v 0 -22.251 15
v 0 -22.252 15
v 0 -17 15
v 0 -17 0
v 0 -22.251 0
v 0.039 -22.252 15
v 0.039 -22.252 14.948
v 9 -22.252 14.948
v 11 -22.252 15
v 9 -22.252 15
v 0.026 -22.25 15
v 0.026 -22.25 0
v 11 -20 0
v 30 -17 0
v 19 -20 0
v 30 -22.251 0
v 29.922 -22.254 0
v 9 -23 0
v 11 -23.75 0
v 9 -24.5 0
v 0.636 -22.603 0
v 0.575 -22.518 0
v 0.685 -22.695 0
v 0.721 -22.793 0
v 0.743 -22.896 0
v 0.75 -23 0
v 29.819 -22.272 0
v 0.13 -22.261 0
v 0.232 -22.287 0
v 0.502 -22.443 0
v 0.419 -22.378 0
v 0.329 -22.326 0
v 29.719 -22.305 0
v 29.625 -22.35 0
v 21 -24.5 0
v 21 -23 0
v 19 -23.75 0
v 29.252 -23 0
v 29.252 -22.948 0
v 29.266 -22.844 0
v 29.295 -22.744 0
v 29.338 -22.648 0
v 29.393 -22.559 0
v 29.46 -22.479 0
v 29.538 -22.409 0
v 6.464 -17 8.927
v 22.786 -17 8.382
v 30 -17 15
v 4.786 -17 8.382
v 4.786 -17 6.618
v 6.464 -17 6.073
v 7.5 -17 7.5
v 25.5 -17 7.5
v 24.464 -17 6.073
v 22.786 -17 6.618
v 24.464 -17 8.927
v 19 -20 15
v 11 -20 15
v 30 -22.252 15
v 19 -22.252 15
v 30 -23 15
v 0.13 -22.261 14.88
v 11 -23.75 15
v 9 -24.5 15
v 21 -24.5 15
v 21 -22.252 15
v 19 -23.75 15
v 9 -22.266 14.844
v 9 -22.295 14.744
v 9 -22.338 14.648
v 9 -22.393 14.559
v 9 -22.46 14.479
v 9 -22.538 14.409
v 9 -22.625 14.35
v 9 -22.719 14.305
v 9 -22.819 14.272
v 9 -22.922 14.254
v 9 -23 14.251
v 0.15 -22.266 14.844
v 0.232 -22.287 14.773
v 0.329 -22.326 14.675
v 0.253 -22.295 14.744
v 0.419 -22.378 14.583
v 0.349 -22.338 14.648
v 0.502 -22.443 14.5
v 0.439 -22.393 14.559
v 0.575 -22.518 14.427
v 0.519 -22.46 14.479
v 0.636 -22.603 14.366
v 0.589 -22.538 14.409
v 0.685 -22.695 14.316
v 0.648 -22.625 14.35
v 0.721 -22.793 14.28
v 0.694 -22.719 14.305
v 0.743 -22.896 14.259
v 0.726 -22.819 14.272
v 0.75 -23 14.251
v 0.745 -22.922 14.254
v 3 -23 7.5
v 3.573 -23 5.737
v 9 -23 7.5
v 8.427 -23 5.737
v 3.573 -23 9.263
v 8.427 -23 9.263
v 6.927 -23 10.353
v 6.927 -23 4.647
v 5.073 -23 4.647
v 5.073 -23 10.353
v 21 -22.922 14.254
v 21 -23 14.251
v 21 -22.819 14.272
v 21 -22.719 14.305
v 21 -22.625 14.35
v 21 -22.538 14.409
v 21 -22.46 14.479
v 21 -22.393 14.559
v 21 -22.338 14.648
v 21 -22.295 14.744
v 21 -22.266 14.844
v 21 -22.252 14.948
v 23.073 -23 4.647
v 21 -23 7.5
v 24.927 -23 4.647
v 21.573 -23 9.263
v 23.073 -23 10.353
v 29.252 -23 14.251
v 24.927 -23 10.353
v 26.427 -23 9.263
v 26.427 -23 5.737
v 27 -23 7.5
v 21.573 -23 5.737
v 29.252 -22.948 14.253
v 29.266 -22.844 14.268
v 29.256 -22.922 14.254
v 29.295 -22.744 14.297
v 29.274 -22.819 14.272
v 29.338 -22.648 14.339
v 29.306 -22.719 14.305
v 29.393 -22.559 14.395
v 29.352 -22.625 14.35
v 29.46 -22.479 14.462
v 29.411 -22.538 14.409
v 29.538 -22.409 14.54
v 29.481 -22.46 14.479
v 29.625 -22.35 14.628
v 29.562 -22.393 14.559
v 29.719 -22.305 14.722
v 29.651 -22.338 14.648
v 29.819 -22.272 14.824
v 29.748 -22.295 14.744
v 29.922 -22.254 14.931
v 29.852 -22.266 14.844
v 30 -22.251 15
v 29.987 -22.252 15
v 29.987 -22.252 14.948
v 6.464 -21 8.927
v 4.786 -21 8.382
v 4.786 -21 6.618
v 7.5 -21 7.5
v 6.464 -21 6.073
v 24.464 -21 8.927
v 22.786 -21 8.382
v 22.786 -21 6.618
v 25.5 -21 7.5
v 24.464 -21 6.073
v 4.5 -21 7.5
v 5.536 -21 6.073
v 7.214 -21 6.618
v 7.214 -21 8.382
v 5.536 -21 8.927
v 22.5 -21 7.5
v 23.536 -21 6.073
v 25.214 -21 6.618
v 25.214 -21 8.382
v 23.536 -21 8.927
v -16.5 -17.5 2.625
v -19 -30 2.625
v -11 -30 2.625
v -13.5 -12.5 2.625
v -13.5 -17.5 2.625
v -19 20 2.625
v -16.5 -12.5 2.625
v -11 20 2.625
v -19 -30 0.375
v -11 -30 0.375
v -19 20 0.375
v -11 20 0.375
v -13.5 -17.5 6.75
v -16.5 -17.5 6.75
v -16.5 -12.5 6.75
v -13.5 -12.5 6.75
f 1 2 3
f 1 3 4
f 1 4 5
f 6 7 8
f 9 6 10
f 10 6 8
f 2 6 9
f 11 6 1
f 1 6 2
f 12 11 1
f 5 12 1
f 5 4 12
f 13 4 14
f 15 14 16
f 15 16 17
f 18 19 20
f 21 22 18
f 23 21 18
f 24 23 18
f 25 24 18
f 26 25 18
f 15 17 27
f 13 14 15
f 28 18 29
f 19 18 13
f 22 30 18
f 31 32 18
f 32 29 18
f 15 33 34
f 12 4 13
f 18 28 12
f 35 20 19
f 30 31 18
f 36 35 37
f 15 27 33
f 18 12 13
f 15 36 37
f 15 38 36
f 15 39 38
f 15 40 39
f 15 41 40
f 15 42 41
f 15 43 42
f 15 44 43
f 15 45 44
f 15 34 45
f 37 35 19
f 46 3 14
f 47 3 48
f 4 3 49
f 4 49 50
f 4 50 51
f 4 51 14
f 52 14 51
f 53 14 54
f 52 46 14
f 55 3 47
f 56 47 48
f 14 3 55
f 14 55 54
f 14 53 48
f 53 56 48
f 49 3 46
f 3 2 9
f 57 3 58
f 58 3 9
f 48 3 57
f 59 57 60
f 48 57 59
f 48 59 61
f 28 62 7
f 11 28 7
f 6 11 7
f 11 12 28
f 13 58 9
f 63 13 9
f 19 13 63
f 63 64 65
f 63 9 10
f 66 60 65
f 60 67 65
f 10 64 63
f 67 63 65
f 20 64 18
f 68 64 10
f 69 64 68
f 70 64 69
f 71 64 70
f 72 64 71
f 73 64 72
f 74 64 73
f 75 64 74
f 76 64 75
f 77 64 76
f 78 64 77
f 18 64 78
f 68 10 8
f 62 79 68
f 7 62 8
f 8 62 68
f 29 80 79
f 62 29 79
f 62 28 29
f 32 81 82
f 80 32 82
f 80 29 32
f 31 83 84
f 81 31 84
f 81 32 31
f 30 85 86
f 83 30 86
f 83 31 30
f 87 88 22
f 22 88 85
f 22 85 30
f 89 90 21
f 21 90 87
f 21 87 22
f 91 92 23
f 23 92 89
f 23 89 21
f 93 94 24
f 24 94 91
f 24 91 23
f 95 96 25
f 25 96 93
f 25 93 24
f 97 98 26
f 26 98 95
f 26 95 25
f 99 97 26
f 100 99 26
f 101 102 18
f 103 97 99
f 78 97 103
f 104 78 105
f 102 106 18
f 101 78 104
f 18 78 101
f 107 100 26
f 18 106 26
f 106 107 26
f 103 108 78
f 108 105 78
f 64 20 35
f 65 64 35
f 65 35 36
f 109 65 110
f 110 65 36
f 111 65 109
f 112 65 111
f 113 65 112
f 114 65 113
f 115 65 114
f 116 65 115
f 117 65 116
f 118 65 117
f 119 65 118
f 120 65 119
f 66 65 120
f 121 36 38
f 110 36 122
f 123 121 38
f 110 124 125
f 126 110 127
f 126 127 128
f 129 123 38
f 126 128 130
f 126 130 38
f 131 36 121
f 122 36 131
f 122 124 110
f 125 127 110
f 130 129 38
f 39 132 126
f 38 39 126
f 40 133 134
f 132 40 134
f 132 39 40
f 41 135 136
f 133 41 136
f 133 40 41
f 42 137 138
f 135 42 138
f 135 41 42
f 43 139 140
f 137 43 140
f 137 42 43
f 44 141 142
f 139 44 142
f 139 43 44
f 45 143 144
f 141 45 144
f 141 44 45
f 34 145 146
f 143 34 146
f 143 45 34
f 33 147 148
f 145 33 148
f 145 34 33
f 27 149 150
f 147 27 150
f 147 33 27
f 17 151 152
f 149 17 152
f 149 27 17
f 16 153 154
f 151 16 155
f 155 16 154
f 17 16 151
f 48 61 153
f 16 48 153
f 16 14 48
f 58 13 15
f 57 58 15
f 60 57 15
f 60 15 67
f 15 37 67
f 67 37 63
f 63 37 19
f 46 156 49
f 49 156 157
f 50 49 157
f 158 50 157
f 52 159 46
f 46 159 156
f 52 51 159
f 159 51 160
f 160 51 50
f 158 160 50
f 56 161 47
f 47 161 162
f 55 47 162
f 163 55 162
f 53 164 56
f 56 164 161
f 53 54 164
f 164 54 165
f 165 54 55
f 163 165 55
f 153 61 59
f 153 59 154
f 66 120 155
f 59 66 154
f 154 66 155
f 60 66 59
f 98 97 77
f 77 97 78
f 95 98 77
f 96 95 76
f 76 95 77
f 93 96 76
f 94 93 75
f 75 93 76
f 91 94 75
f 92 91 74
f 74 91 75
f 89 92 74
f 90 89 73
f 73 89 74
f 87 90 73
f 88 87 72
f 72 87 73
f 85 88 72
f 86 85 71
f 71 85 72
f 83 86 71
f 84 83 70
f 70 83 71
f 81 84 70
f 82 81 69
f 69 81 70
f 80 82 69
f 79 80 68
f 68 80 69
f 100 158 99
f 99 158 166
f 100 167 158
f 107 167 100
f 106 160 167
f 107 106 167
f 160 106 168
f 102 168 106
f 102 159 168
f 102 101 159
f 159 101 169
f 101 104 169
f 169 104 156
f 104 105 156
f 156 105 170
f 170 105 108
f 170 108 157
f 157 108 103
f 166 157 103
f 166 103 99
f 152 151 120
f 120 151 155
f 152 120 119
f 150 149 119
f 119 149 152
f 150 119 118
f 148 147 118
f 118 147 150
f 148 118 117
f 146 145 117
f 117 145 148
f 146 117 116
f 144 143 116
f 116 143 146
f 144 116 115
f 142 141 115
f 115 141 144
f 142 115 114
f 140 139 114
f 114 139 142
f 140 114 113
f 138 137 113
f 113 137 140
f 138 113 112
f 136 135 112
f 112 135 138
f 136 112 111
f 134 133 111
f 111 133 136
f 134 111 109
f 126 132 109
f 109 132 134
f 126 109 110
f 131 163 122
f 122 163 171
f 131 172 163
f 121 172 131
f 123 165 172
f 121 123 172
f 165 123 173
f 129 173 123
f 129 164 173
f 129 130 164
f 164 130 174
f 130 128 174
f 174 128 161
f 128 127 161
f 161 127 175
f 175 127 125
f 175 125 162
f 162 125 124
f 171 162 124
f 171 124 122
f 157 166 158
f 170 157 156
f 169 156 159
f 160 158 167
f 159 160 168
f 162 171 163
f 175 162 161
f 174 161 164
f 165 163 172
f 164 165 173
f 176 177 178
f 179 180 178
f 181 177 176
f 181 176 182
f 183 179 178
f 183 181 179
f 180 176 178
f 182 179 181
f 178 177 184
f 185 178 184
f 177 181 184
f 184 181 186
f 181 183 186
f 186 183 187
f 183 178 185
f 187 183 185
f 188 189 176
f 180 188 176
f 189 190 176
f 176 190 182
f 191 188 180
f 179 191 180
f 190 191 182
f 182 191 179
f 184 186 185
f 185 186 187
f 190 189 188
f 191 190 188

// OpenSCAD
/*
 *   door_latch.scad
 *   Creates a simple door lock for closing a door.
 *   Copyright (C) 2014  Mogue Carpenter
 *
 *    This program is free software: you can redistribute it and/or modify
 *    it under the terms of the GNU General Public License as published by
 *    the Free Software Foundation, either version 3 of the License, or
 *    (at your option) any later version.
 *
 *    This program is distributed in the hope that it will be useful,
 *    but WITHOUT ANY WARRANTY; without even the implied warranty of
 *    MERCHANTABILITY or FITNESS FOR A PARTICULAR PURPOSE.  See the
 *    GNU General Public License for more details.

 *    You should have received a copy of the GNU General Public License
 *    along with this programbvngn  If not, see <http://www.gnu.org/licenses/>.
*/
catch_lenght = 15;
holder_lenght = 50;
lenght = catch_lenght + holder_lenght ;
width = 30;

wall_s = 3;
bolt_r = 4;
bolt_slider_w = 3;
bolt_slider_gl = catch_lenght;
gap = 0.5;
handle_l = 5;

screw_lenght = wall_s*2+1;
screw_size = 1.5;
counter_sink = 2;

//rounding
p=0.1;
r=wall_s/4;
s=45;

//translate ([0,0,holder_lenght+catch_lenght]) rotate([270,0,0]) base();
translate ([0,-20,catch_lenght]) rotate([270,0,0]) latch();
//translate ([0,20,-catch_lenght]) rotate([90,0,0]) top();
translate ([-15,-20,wall_s/2]) rotate([270,270,0]) latch_bolt();




module top(){
	intersection(){
		latch_block();
		// top_plate_void
		translate([0,catch_lenght,-wall_s*6.1]) 
			cube([width,(holder_lenght*0.80),wall_s*6],center=false);
	}
}

module latch (){
	intersection(){
		latch_block();
		translate([0,-5,-wall_s*3]) cube([width,catch_lenght+5,wall_s*6],center=false);
	}
}

module base (){
	difference(){
		latch_block();
		// latch void
		translate([0,-handle_l,-wall_s*3]) cube([width,catch_lenght+handle_l,wall_s*6-1],center=false);
		// top_plate_void
		translate([0,catch_lenght,-wall_s*6]) cube([width,holder_lenght*0.80,wall_s*6],center=false);
	}
}

module latch_bolt(){

		translate([0,0,catch_lenght])
			cube ([wall_s*.75,bolt_r*2,holder_lenght],center=true);
		translate([wall_s*.75,0,handle_l])
			cube ([6,bolt_slider_w,handle_l],center=true);
}

module handle(){
	w = (bolt_r+2)*2+gap;
	l = (bolt_r*2)+2;
	h = bolt_slider_gl-catch_lenght;

	difference(){
		//block
		translate([w*0.25,0,0])
		cube([w,l,h],center=true);
		translate([bolt_r+2+gap,0,h*2])
			cylinder(h=lenght,r=bolt_r+2,center=true);
		translate([-h/2,-h*1.5,0])
			cylinder(h=h,r=h,center=true);
		translate([-h/2,+h*1.5,0])
			cylinder(h=h,r=h,center=true);
	}		
	translate([-h/2,0,0])
			cylinder(h=h,r=h/2,center=true);
}

module latch_block(){
	difference(){
		union(){
			back_plate();
			translate([0,0,-wall_s]) top_plate();
		}
		rotate([180,0,0]) translate([0,-lenght,-wall_s])	 screw_holes();
	}
}

module top_plate(){
	difference(){
		cube([width,lenght,wall_s],center=false);

		//Bolt hole
		translate([width/2,lenght/2,0]) rotate([270,0,0]) 
			cube ([bolt_r*2,wall_s*2+1,lenght+1],center=true);

		//bevel
		translate ([0,lenght/2,0])rotate ([90,0,0]) bevel(p,lenght,width,wall_s,r,s);
		translate ([width,lenght/2,0])rotate ([90,0,0]) bevel(p,lenght,width,wall_s,r,s);
		translate ([width/2,0,0])rotate ([0,90,0]) bevel(p,width,lenght,wall_s,r,s);
		translate ([width/2,lenght,0])rotate ([0,90,0]) bevel(p,width,lenght,wall_s,r,s);
	}
	bolt_hole();
}

module back_plate(){
	difference(){
		cube([width,lenght,wall_s],center=false);
	}
}

module bolt_hole(){
	// bolt hole
	translate([width/2,lenght/2,0]) rotate([270,0,0]) 
	difference(){

		cube ([bolt_r*3,wall_s,lenght],center=true);
		translate([0,-wall_s/2,0])
			cube ([bolt_r*2,wall_s*1.5,lenght],center=true);

		// bolt handle grove
		translate([0,0,(holder_lenght/2)-(bolt_slider_gl/2)-handle_l+0.1])
			cube([bolt_slider_w+gap, bolt_r ,bolt_slider_gl+handle_l],center=true);

	}

}

module screw_holes(){
		translate([width*0.20,holder_lenght*0.25,wall_s*2]) 	screw_hole();
		translate([width*0.80,holder_lenght*0.25,wall_s*2]) 	screw_hole();
		translate([width*0.20,holder_lenght*0.75,wall_s*2]) 	screw_hole();
		translate([width*0.80,holder_lenght*0.75,wall_s*2]) 	screw_hole();
		translate([width*0.20,lenght-(catch_lenght*0.50),wall_s*2]) 	screw_hole();
		translate([width*0.80,lenght-(catch_lenght*0.50),wall_s*2]) 	screw_hole();
}

module screw_hole(){
	counter_sink_h = counter_sink;
	screw_l = screw_lenght;
	screw_r = screw_size;

	translate([0,0,-screw_l-counter_sink_h-1])
		cylinder(h=screw_l+1,r=screw_r, center=false);
	translate([0,0,-counter_sink_h])
		cylinder(h=2,r1=screw_r,r2=screw_r*2, center=false);
}


module bevel(p,l,w,h,r,s) {

pad = p;			// Padding to maintain manifold
box_l = l; 		// Length
box_w = w;		// Width
box_h = h;		// Height
round_r = r;	// Radius of round
smooth = s;		// Number of facets of rounding cylinder

		cylinder(h=box_l,r=round_r, center=true, $fn=smooth);

}
